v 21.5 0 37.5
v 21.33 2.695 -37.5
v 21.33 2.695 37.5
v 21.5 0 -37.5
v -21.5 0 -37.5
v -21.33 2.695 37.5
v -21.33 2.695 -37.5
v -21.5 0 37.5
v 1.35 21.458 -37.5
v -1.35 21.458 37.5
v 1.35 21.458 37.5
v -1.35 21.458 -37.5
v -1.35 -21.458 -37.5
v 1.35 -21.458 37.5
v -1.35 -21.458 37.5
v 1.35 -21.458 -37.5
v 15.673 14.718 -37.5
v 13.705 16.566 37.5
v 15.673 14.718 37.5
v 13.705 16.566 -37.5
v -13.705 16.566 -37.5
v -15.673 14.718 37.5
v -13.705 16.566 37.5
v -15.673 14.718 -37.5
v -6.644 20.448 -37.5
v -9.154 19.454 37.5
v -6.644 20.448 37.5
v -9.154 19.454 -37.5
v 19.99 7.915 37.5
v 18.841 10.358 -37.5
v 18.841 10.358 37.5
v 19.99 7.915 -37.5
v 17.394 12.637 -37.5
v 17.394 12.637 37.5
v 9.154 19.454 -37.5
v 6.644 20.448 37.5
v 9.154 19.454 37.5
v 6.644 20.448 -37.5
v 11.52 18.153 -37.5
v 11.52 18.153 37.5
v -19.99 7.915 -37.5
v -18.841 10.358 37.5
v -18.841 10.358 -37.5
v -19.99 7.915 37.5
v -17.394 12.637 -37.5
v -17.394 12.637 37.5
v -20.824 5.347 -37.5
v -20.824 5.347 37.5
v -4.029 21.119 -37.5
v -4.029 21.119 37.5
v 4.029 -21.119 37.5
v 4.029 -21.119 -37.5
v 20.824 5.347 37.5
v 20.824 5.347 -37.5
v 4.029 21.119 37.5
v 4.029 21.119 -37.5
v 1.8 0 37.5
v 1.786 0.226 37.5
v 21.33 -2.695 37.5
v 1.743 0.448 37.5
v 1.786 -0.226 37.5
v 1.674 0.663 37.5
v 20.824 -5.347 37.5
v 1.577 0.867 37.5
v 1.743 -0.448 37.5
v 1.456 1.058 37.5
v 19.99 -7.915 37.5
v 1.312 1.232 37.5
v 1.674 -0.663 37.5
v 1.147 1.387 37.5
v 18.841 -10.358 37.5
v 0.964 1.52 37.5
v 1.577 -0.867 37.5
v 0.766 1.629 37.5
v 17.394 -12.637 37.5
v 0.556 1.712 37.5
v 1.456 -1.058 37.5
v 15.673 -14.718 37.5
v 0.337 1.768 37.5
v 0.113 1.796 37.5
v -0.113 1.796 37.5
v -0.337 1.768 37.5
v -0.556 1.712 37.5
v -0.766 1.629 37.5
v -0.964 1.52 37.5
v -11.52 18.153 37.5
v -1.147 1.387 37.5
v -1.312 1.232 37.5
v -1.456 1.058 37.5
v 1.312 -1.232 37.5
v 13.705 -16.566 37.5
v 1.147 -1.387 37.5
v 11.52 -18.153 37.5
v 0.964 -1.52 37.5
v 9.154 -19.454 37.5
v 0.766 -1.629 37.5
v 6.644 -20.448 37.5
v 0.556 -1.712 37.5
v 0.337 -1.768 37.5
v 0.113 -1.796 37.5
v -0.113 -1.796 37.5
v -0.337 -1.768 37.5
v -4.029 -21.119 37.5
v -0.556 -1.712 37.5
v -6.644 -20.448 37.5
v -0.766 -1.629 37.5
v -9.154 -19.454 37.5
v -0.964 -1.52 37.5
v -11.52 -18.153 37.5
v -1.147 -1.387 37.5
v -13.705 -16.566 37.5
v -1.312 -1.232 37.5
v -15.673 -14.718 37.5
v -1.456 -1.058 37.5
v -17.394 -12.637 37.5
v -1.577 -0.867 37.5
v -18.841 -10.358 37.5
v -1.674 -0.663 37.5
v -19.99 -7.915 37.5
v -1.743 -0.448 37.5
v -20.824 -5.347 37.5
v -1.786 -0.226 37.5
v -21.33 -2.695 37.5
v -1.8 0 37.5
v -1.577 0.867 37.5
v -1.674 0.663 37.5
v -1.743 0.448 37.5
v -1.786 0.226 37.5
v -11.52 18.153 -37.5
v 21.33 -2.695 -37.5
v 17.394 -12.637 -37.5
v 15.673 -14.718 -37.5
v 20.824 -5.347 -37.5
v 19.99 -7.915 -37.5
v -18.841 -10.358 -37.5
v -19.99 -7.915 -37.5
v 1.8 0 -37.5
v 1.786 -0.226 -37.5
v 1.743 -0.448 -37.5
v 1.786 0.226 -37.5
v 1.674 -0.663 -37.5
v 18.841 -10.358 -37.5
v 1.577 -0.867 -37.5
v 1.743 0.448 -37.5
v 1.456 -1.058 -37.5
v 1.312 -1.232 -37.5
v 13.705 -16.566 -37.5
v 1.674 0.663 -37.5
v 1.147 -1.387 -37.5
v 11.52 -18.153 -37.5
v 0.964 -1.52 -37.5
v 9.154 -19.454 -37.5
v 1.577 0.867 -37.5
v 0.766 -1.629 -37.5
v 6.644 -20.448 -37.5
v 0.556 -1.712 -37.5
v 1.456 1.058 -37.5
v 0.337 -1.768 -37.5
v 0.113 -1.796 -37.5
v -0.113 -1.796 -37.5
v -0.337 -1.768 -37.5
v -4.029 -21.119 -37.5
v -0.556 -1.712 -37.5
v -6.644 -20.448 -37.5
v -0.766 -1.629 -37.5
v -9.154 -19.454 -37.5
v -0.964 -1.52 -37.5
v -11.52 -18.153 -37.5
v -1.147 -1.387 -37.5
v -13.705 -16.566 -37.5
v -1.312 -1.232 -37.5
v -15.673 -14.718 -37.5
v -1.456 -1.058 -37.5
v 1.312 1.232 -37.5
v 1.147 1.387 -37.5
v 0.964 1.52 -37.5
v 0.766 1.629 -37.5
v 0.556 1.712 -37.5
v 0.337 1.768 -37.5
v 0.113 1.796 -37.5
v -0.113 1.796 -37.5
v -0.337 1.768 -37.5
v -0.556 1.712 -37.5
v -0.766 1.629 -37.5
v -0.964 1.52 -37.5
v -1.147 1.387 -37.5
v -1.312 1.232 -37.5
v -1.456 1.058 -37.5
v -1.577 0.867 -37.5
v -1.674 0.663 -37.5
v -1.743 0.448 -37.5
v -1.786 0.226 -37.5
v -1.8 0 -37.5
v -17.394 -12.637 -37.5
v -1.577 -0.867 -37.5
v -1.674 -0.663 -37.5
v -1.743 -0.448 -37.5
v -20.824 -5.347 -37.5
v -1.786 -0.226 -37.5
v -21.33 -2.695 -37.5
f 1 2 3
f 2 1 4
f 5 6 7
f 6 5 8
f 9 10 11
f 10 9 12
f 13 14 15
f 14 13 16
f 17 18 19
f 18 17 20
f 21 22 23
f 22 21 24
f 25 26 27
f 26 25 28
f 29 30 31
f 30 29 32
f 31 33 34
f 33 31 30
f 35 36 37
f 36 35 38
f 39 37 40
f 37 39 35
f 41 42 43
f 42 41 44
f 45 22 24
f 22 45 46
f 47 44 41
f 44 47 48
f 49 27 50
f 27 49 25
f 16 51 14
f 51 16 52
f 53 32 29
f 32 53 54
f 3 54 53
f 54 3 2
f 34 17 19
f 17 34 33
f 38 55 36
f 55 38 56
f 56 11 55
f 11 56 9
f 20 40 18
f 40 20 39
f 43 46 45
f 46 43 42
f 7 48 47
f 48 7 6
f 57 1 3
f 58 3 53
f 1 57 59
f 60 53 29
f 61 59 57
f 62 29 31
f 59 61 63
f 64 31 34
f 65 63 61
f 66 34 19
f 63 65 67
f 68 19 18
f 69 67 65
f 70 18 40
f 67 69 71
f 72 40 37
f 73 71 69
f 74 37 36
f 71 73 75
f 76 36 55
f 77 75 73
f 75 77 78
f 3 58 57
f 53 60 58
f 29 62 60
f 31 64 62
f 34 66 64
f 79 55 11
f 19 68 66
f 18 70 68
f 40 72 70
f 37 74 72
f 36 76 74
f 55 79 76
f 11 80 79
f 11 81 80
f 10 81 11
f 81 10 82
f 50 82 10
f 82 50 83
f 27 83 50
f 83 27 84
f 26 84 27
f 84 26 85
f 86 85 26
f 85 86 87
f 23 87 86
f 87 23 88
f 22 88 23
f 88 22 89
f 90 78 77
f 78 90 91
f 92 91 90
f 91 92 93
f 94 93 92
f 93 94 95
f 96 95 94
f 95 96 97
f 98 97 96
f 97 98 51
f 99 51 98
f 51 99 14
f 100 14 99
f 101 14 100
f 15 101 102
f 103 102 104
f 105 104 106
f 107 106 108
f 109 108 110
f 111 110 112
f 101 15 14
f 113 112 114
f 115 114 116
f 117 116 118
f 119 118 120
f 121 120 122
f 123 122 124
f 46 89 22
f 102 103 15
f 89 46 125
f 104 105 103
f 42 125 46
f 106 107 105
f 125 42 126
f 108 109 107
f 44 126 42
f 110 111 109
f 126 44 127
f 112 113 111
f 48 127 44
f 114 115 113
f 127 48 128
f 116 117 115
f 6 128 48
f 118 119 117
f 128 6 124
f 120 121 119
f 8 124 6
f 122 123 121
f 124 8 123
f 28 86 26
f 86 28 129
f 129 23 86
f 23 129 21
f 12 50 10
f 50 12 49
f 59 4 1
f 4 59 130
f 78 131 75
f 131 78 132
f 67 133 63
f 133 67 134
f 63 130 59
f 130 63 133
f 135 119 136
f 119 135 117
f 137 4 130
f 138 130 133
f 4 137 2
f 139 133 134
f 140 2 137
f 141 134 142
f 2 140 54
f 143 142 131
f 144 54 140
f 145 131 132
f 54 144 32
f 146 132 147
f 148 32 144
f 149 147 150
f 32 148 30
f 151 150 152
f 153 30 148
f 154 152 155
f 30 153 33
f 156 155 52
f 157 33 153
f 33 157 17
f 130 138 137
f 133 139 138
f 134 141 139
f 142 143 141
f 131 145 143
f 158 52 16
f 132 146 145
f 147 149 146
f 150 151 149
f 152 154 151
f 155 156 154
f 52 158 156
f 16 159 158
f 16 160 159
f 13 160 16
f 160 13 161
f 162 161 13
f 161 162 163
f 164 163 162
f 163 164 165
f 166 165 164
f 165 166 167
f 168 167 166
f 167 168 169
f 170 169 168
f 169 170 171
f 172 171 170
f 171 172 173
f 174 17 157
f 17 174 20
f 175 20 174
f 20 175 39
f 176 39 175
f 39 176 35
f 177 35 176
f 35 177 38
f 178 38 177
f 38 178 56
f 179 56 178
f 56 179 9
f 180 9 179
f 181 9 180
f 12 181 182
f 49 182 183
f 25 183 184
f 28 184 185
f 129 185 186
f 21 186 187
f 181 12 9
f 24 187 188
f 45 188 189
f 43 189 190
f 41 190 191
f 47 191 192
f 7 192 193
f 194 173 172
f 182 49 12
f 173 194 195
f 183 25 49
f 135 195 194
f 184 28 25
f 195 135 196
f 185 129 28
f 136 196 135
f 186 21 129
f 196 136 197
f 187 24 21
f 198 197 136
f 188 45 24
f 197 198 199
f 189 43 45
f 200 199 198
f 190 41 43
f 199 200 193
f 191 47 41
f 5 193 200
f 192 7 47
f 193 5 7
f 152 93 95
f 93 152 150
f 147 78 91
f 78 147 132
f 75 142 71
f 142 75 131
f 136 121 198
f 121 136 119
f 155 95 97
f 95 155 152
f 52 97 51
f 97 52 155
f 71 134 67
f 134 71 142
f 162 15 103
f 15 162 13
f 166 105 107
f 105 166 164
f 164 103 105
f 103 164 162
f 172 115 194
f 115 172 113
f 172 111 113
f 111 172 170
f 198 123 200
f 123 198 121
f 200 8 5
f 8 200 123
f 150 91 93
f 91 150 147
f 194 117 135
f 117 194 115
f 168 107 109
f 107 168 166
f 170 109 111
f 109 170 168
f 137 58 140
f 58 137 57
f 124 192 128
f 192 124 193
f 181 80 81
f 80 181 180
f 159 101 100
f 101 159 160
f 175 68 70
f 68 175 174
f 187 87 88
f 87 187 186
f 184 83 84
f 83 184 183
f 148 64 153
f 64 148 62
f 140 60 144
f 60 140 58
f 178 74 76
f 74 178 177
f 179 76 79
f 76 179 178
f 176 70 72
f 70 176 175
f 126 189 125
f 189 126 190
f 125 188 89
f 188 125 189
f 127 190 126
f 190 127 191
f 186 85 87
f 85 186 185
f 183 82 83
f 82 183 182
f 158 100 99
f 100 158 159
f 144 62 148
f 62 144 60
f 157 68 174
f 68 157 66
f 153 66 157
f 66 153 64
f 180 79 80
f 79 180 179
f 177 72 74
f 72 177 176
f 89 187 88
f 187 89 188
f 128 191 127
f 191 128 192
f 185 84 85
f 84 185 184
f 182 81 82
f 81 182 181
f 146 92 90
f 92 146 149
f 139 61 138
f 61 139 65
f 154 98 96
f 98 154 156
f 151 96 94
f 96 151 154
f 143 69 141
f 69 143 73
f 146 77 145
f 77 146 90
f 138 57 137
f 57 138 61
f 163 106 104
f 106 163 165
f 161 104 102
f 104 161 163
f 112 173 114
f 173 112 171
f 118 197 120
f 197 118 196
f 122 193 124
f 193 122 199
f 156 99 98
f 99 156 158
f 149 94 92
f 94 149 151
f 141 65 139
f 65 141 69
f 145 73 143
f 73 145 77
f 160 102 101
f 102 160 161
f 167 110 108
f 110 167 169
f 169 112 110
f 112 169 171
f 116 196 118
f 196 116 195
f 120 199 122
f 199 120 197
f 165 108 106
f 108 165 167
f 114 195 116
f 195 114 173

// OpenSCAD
$fn = 50;


difference() {
	union() {
		translate(v = [0, 0, -37.5000000000]) {
			cylinder(h = 75, r = 21.5000000000);
		}
	}
	union() {
		translate(v = [0, 0, -100.0000000000]) {
			cylinder(h = 200, r = 1.8000000000);
		}
	}
}
